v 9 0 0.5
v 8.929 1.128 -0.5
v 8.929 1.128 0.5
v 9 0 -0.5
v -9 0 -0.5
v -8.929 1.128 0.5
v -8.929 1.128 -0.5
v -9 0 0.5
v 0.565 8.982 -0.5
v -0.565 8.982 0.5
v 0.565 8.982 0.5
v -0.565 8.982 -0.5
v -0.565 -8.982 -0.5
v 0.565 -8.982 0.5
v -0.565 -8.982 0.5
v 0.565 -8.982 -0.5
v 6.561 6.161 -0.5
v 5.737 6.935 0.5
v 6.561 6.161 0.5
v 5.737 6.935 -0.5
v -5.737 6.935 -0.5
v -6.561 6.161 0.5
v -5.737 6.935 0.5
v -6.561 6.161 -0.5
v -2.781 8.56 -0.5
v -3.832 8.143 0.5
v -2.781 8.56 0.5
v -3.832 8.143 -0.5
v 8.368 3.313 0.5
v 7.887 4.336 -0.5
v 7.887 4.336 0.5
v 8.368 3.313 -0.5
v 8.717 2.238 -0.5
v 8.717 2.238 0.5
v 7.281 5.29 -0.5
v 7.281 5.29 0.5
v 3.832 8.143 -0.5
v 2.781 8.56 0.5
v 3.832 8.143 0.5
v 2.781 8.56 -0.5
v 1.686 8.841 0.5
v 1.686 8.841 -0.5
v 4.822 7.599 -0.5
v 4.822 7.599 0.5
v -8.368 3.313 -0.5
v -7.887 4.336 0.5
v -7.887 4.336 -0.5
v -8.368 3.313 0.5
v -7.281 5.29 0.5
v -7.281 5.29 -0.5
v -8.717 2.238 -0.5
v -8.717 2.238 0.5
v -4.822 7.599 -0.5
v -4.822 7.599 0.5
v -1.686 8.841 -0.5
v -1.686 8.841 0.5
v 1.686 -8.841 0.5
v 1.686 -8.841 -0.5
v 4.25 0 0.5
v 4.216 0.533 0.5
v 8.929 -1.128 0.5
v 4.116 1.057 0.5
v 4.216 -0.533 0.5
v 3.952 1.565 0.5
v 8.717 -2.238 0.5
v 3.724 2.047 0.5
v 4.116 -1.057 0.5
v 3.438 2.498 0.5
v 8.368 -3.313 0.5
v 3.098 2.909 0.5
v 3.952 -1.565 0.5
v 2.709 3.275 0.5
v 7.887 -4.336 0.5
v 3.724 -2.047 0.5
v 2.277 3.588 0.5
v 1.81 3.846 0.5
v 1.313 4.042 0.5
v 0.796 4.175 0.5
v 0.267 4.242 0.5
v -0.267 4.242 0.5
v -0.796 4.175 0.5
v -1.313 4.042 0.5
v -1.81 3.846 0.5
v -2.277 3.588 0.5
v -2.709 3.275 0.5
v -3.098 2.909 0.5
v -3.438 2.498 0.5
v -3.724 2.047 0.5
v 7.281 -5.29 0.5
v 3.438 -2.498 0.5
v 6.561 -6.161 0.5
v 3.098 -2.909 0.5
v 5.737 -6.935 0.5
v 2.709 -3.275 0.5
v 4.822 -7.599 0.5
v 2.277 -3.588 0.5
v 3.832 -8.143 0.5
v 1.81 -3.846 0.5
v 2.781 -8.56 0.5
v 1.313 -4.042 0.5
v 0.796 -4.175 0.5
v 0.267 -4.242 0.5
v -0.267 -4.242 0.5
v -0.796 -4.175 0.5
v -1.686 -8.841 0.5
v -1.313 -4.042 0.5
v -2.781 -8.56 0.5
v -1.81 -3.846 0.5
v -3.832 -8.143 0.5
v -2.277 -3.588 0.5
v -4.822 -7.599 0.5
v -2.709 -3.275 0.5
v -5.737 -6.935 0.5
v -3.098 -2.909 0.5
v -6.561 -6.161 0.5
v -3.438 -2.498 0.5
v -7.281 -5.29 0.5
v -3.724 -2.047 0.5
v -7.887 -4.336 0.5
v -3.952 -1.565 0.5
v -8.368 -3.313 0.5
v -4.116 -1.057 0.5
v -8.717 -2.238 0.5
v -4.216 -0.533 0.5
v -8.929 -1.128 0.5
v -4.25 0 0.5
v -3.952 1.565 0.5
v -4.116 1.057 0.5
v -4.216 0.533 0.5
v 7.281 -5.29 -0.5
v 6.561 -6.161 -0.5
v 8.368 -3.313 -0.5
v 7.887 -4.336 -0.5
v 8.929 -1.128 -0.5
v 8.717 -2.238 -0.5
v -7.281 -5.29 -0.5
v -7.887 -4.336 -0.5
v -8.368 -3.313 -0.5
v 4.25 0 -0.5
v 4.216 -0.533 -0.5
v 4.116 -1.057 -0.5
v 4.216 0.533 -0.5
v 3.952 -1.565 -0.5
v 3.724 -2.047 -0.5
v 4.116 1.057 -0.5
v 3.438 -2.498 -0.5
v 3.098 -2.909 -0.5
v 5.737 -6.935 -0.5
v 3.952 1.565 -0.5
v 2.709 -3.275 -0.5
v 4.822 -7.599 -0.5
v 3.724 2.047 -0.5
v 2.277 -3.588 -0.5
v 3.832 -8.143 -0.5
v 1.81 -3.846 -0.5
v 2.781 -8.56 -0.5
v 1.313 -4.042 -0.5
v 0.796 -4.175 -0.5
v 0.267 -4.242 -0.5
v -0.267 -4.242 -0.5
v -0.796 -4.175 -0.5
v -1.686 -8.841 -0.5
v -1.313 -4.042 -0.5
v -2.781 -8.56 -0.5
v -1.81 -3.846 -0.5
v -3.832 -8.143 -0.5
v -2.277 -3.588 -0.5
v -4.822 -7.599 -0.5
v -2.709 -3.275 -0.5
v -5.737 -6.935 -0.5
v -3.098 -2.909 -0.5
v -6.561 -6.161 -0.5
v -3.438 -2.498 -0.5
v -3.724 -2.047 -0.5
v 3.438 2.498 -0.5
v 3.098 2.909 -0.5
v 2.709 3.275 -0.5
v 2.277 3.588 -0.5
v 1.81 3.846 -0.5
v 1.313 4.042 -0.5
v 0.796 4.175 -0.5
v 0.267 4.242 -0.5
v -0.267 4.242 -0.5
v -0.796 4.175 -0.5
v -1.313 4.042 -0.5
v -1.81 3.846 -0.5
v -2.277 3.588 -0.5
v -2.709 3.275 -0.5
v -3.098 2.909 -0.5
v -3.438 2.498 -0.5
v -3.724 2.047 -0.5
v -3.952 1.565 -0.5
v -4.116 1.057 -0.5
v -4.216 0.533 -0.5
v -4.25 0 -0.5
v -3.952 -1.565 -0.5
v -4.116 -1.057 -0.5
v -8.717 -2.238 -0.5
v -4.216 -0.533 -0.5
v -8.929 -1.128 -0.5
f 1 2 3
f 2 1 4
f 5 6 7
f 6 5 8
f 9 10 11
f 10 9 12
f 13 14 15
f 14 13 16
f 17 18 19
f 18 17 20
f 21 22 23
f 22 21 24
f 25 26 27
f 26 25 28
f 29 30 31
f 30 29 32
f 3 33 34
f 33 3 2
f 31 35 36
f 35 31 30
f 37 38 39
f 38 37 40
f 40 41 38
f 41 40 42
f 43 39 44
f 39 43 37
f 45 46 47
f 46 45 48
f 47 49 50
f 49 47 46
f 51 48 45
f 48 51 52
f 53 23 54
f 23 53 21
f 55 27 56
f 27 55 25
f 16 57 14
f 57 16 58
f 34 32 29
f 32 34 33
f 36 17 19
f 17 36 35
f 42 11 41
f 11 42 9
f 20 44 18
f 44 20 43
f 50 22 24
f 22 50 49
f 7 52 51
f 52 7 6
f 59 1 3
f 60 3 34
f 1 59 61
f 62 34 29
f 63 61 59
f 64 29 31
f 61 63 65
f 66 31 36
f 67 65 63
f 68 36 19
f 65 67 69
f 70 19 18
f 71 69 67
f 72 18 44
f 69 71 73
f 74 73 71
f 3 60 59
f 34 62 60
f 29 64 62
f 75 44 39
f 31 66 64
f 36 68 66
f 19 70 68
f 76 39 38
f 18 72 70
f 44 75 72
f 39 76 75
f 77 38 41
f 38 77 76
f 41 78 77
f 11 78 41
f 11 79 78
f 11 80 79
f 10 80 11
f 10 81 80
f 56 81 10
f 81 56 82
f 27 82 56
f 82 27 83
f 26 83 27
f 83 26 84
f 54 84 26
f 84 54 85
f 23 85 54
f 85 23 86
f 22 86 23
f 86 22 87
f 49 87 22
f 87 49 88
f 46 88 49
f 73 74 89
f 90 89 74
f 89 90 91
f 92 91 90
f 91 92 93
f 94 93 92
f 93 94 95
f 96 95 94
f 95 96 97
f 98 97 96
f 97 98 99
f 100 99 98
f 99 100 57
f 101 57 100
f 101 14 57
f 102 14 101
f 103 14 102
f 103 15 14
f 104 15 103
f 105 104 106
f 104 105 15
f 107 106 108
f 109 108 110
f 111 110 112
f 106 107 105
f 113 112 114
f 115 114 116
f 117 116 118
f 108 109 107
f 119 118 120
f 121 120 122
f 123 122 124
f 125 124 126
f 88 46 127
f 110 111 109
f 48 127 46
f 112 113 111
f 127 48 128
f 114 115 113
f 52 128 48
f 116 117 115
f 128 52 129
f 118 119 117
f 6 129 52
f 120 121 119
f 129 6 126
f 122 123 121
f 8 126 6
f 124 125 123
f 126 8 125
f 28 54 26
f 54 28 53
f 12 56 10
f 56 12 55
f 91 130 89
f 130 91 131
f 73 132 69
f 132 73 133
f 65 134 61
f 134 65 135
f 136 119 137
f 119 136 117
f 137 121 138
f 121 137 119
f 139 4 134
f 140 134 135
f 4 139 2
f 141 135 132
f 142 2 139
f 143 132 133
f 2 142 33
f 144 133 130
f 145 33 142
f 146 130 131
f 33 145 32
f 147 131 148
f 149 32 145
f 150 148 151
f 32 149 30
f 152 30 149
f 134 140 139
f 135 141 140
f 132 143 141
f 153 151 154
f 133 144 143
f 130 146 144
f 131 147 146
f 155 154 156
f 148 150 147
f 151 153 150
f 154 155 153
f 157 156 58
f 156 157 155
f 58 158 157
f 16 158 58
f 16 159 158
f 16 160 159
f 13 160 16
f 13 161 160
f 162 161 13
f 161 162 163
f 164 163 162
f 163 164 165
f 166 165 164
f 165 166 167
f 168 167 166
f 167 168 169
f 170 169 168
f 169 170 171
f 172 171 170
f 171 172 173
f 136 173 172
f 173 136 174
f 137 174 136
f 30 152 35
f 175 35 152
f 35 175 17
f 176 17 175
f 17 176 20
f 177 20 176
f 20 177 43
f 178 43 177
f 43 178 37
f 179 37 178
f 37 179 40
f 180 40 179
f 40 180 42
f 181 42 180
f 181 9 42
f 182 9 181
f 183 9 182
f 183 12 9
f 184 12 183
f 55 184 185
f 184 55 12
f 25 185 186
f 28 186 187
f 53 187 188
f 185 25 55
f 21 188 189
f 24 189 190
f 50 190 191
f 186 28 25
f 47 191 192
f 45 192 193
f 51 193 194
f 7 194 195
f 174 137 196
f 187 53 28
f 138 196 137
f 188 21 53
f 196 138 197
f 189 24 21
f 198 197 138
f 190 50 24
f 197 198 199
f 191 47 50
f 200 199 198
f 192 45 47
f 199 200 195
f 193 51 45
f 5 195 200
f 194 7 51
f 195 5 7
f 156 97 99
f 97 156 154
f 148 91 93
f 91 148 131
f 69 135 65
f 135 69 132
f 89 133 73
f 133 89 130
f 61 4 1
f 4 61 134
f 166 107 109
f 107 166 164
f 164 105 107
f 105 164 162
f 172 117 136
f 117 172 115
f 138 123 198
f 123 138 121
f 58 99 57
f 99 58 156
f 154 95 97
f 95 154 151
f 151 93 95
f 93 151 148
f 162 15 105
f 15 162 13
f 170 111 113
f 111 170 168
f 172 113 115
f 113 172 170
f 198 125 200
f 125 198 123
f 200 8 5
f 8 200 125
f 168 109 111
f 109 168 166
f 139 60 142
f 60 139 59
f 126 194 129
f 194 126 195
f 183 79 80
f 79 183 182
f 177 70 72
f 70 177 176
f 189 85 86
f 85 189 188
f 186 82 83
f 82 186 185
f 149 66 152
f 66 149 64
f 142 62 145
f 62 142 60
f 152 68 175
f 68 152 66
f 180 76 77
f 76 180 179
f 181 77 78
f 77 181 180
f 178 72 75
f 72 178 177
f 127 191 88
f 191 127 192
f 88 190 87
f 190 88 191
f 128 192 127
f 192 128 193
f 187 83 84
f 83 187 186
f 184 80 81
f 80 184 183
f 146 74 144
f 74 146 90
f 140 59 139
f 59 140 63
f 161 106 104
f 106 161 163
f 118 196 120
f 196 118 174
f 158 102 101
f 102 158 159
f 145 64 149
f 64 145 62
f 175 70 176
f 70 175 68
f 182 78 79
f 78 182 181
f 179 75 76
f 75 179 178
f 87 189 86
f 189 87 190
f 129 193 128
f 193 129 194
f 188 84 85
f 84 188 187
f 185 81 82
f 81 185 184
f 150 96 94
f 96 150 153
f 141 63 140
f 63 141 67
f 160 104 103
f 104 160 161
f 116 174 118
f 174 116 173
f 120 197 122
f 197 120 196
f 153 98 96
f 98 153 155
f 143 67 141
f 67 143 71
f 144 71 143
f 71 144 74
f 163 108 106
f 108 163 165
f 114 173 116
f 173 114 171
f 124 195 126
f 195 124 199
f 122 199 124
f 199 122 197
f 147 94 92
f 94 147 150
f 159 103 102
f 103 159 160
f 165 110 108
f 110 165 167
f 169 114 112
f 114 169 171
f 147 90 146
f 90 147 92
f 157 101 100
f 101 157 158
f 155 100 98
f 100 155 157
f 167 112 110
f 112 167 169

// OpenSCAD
$fn = 50;


difference() {
	union() {
		translate(v = [0, 0, -0.5000000000]) {
			cylinder(h = 1, r = 9.0000000000);
		}
	}
	union() {
		translate(v = [0, 0, -100.0000000000]) {
			cylinder(h = 200, r = 4.2500000000);
		}
	}
}
